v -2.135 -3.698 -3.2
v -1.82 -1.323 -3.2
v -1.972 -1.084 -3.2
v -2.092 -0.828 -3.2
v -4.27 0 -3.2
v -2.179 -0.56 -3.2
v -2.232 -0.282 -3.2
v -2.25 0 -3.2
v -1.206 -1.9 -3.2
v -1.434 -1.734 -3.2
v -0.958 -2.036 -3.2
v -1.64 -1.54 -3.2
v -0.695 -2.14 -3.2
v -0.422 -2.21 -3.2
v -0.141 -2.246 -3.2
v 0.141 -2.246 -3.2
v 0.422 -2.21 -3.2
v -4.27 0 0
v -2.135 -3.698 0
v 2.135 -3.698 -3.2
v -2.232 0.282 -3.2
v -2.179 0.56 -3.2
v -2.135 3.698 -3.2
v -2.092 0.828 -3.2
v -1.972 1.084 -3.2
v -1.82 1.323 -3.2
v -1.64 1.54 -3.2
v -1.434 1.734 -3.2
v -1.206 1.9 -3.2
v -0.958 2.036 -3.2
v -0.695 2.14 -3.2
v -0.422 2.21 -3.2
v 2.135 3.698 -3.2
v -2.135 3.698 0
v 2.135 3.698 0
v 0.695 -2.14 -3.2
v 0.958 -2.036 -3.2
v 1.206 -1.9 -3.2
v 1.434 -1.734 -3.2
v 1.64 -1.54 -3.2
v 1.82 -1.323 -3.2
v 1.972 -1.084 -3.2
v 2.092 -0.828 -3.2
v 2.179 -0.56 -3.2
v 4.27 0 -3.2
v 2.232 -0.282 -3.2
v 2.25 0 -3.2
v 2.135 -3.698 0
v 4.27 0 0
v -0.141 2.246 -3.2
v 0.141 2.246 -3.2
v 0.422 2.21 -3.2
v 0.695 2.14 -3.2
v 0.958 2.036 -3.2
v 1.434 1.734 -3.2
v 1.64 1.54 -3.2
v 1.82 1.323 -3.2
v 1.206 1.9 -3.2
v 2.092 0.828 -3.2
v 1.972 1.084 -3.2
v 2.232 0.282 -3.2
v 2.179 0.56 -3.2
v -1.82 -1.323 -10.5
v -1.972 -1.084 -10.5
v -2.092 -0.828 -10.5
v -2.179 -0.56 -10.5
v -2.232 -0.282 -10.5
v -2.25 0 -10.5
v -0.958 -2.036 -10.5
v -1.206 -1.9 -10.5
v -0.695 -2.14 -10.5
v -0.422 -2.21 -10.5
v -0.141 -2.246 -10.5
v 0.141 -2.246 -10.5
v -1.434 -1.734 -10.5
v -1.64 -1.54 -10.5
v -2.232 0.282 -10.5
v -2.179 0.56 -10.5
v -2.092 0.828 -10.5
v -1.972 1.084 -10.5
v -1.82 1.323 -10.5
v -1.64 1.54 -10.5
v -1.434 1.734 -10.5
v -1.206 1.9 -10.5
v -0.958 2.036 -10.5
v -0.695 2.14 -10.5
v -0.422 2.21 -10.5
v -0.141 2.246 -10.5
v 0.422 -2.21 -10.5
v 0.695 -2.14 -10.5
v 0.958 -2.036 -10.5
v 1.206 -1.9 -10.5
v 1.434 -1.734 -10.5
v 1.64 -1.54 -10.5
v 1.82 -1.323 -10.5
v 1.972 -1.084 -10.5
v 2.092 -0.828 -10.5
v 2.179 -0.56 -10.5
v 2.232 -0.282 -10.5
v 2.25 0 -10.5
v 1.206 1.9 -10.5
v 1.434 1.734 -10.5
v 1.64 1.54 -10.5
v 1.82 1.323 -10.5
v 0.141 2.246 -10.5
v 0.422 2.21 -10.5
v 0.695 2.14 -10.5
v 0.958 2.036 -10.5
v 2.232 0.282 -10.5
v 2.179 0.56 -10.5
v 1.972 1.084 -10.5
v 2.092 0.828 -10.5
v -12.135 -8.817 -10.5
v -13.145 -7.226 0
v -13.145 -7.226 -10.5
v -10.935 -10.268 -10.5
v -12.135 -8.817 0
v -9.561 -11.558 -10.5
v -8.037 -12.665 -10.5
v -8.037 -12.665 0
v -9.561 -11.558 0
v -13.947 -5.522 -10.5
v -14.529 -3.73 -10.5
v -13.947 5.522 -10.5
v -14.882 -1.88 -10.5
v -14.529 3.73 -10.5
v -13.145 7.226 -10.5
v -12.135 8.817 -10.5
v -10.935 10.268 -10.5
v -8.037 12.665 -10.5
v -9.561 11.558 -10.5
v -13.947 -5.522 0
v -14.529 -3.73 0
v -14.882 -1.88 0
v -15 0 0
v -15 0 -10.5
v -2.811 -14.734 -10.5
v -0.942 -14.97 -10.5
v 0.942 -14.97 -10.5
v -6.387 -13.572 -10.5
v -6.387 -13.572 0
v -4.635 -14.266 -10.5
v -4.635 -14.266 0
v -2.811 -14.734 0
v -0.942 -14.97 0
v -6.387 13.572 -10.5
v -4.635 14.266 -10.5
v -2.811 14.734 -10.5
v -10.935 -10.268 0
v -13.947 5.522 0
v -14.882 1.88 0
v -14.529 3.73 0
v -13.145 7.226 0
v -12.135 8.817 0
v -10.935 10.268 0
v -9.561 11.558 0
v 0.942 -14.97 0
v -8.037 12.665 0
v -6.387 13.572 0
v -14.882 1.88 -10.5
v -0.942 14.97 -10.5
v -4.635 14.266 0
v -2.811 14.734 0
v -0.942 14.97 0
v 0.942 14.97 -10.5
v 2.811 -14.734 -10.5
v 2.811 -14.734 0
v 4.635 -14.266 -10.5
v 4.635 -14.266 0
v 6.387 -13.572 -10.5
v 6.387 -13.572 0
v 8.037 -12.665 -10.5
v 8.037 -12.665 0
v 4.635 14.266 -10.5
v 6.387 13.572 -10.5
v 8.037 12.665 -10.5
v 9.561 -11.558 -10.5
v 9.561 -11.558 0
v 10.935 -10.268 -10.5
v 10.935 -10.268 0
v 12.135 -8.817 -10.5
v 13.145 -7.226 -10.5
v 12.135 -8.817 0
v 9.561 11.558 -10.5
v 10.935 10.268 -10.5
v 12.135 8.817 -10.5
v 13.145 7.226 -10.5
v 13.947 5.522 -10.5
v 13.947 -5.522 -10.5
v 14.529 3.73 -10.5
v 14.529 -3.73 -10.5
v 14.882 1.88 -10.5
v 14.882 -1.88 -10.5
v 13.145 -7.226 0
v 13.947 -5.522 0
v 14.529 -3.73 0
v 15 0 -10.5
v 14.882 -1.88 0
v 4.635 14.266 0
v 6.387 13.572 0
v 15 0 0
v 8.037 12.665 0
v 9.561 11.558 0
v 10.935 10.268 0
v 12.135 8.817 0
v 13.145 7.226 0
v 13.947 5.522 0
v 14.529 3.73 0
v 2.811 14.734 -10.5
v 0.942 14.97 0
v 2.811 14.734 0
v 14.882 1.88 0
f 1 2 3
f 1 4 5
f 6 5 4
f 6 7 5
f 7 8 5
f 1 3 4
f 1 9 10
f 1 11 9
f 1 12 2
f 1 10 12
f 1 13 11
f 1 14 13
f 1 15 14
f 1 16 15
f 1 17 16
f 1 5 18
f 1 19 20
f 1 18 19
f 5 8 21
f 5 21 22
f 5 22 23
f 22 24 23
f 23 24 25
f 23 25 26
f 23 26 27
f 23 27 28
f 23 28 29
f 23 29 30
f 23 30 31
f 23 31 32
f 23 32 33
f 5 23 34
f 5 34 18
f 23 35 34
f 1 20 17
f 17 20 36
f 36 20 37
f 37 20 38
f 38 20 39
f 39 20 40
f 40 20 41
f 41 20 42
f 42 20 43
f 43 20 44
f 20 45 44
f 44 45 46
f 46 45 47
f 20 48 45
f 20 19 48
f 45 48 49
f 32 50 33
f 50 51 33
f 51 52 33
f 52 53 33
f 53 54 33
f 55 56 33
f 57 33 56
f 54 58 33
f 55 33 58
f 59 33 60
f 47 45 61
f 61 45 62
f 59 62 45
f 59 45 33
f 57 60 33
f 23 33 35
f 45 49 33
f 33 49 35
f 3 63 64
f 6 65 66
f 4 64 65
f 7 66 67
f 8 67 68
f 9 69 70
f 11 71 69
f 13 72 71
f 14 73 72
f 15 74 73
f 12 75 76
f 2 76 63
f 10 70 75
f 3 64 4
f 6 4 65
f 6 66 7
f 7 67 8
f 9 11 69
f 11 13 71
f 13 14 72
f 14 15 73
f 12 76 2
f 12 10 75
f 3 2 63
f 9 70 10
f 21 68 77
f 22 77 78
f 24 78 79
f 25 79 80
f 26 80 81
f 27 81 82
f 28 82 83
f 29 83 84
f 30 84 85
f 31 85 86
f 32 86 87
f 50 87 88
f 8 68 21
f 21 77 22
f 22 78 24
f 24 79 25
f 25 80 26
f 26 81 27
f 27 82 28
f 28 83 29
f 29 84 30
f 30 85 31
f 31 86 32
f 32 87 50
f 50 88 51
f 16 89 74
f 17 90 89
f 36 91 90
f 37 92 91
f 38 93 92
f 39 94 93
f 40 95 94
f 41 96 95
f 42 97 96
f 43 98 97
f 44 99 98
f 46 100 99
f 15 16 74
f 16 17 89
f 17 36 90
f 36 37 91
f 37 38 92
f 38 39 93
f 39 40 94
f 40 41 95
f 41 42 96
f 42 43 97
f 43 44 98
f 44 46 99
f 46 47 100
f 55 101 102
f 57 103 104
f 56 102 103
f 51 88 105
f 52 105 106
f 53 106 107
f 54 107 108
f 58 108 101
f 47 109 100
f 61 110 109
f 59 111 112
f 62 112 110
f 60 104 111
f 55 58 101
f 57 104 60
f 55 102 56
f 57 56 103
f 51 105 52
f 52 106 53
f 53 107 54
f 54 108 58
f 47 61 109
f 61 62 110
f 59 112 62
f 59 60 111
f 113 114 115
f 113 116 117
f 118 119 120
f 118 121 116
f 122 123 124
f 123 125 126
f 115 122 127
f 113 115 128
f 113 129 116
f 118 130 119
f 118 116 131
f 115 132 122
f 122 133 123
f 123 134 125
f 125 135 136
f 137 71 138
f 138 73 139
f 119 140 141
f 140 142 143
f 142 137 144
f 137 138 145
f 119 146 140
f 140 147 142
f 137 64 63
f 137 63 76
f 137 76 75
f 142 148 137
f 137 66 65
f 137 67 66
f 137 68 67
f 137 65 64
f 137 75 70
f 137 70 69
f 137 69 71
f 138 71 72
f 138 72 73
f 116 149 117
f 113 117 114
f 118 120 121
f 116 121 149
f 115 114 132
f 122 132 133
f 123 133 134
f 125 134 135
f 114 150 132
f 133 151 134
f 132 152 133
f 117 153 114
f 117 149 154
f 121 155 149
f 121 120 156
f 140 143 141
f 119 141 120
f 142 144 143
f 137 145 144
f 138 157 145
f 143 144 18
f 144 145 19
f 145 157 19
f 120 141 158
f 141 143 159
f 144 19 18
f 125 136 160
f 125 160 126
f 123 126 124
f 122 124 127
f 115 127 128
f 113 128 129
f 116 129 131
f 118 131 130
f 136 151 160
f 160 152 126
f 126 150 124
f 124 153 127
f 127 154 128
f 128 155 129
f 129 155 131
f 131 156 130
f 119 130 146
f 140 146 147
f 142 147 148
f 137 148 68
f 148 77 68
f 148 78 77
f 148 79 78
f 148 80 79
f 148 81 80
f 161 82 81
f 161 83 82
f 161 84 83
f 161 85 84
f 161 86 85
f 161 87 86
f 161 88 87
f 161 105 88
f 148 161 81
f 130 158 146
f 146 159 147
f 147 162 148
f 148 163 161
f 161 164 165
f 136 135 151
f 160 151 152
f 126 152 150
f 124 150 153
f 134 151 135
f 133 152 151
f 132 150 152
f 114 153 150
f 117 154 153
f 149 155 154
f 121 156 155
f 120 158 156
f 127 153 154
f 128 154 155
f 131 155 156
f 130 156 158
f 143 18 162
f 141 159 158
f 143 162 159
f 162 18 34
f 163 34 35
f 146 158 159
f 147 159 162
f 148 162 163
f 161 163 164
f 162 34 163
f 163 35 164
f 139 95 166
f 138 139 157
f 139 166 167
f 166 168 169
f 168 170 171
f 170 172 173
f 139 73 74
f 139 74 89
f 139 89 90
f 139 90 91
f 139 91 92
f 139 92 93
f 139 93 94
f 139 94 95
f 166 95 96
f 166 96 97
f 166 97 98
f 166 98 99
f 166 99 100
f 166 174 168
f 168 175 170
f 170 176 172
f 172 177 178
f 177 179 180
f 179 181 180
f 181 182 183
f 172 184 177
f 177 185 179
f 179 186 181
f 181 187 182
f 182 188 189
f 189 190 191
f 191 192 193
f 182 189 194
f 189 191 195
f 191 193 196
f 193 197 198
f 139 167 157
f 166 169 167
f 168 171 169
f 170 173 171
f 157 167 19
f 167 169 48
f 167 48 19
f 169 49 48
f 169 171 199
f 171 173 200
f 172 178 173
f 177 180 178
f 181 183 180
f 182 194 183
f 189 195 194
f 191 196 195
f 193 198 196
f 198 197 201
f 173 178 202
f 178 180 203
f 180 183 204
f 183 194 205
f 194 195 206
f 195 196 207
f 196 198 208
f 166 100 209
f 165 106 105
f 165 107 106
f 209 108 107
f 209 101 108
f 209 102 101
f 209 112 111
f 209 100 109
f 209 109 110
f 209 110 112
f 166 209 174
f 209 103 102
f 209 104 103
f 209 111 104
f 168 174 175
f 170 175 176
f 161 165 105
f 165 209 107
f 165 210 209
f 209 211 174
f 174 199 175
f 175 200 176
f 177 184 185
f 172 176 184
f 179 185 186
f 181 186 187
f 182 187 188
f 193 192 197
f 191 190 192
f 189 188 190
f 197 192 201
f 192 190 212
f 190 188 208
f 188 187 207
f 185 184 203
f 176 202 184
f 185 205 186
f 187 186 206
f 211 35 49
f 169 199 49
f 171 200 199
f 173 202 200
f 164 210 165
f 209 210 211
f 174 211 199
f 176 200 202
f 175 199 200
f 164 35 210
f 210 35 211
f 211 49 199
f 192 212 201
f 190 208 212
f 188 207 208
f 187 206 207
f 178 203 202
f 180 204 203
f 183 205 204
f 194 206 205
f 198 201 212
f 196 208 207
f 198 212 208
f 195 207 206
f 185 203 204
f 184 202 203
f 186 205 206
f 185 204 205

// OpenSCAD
$fn = 50;

difference() {
	union() {
		translate(v = [0, 0, -10.5]) {
			cylinder(h = 10.5, r = 15.0);
		}
	}
	union() {
		translate(v = [0, 0, 0]) {
			rotate(a = [0, 0, 0]) {
				difference() {
					union() {
						translate(v = [0, 0, -3.2]) {
							linear_extrude(height = 3.2) {
								polygon(points = [[4.2698, 0.0], [2.1349000000000005, 3.697755269078796], [-2.134899999999999, 3.6977552690787965], [-4.2698, 5.228996902999369e-16], [-2.134900000000002, -3.6977552690787956], [2.1348999999999974, -3.697755269078798]]);
							}
						}
					}
					union();
				}
			}
		}
		#translate(v = [0, 0, -100.0]) {
			cylinder(h = 200, r = 2.25);
		}
	}
}
